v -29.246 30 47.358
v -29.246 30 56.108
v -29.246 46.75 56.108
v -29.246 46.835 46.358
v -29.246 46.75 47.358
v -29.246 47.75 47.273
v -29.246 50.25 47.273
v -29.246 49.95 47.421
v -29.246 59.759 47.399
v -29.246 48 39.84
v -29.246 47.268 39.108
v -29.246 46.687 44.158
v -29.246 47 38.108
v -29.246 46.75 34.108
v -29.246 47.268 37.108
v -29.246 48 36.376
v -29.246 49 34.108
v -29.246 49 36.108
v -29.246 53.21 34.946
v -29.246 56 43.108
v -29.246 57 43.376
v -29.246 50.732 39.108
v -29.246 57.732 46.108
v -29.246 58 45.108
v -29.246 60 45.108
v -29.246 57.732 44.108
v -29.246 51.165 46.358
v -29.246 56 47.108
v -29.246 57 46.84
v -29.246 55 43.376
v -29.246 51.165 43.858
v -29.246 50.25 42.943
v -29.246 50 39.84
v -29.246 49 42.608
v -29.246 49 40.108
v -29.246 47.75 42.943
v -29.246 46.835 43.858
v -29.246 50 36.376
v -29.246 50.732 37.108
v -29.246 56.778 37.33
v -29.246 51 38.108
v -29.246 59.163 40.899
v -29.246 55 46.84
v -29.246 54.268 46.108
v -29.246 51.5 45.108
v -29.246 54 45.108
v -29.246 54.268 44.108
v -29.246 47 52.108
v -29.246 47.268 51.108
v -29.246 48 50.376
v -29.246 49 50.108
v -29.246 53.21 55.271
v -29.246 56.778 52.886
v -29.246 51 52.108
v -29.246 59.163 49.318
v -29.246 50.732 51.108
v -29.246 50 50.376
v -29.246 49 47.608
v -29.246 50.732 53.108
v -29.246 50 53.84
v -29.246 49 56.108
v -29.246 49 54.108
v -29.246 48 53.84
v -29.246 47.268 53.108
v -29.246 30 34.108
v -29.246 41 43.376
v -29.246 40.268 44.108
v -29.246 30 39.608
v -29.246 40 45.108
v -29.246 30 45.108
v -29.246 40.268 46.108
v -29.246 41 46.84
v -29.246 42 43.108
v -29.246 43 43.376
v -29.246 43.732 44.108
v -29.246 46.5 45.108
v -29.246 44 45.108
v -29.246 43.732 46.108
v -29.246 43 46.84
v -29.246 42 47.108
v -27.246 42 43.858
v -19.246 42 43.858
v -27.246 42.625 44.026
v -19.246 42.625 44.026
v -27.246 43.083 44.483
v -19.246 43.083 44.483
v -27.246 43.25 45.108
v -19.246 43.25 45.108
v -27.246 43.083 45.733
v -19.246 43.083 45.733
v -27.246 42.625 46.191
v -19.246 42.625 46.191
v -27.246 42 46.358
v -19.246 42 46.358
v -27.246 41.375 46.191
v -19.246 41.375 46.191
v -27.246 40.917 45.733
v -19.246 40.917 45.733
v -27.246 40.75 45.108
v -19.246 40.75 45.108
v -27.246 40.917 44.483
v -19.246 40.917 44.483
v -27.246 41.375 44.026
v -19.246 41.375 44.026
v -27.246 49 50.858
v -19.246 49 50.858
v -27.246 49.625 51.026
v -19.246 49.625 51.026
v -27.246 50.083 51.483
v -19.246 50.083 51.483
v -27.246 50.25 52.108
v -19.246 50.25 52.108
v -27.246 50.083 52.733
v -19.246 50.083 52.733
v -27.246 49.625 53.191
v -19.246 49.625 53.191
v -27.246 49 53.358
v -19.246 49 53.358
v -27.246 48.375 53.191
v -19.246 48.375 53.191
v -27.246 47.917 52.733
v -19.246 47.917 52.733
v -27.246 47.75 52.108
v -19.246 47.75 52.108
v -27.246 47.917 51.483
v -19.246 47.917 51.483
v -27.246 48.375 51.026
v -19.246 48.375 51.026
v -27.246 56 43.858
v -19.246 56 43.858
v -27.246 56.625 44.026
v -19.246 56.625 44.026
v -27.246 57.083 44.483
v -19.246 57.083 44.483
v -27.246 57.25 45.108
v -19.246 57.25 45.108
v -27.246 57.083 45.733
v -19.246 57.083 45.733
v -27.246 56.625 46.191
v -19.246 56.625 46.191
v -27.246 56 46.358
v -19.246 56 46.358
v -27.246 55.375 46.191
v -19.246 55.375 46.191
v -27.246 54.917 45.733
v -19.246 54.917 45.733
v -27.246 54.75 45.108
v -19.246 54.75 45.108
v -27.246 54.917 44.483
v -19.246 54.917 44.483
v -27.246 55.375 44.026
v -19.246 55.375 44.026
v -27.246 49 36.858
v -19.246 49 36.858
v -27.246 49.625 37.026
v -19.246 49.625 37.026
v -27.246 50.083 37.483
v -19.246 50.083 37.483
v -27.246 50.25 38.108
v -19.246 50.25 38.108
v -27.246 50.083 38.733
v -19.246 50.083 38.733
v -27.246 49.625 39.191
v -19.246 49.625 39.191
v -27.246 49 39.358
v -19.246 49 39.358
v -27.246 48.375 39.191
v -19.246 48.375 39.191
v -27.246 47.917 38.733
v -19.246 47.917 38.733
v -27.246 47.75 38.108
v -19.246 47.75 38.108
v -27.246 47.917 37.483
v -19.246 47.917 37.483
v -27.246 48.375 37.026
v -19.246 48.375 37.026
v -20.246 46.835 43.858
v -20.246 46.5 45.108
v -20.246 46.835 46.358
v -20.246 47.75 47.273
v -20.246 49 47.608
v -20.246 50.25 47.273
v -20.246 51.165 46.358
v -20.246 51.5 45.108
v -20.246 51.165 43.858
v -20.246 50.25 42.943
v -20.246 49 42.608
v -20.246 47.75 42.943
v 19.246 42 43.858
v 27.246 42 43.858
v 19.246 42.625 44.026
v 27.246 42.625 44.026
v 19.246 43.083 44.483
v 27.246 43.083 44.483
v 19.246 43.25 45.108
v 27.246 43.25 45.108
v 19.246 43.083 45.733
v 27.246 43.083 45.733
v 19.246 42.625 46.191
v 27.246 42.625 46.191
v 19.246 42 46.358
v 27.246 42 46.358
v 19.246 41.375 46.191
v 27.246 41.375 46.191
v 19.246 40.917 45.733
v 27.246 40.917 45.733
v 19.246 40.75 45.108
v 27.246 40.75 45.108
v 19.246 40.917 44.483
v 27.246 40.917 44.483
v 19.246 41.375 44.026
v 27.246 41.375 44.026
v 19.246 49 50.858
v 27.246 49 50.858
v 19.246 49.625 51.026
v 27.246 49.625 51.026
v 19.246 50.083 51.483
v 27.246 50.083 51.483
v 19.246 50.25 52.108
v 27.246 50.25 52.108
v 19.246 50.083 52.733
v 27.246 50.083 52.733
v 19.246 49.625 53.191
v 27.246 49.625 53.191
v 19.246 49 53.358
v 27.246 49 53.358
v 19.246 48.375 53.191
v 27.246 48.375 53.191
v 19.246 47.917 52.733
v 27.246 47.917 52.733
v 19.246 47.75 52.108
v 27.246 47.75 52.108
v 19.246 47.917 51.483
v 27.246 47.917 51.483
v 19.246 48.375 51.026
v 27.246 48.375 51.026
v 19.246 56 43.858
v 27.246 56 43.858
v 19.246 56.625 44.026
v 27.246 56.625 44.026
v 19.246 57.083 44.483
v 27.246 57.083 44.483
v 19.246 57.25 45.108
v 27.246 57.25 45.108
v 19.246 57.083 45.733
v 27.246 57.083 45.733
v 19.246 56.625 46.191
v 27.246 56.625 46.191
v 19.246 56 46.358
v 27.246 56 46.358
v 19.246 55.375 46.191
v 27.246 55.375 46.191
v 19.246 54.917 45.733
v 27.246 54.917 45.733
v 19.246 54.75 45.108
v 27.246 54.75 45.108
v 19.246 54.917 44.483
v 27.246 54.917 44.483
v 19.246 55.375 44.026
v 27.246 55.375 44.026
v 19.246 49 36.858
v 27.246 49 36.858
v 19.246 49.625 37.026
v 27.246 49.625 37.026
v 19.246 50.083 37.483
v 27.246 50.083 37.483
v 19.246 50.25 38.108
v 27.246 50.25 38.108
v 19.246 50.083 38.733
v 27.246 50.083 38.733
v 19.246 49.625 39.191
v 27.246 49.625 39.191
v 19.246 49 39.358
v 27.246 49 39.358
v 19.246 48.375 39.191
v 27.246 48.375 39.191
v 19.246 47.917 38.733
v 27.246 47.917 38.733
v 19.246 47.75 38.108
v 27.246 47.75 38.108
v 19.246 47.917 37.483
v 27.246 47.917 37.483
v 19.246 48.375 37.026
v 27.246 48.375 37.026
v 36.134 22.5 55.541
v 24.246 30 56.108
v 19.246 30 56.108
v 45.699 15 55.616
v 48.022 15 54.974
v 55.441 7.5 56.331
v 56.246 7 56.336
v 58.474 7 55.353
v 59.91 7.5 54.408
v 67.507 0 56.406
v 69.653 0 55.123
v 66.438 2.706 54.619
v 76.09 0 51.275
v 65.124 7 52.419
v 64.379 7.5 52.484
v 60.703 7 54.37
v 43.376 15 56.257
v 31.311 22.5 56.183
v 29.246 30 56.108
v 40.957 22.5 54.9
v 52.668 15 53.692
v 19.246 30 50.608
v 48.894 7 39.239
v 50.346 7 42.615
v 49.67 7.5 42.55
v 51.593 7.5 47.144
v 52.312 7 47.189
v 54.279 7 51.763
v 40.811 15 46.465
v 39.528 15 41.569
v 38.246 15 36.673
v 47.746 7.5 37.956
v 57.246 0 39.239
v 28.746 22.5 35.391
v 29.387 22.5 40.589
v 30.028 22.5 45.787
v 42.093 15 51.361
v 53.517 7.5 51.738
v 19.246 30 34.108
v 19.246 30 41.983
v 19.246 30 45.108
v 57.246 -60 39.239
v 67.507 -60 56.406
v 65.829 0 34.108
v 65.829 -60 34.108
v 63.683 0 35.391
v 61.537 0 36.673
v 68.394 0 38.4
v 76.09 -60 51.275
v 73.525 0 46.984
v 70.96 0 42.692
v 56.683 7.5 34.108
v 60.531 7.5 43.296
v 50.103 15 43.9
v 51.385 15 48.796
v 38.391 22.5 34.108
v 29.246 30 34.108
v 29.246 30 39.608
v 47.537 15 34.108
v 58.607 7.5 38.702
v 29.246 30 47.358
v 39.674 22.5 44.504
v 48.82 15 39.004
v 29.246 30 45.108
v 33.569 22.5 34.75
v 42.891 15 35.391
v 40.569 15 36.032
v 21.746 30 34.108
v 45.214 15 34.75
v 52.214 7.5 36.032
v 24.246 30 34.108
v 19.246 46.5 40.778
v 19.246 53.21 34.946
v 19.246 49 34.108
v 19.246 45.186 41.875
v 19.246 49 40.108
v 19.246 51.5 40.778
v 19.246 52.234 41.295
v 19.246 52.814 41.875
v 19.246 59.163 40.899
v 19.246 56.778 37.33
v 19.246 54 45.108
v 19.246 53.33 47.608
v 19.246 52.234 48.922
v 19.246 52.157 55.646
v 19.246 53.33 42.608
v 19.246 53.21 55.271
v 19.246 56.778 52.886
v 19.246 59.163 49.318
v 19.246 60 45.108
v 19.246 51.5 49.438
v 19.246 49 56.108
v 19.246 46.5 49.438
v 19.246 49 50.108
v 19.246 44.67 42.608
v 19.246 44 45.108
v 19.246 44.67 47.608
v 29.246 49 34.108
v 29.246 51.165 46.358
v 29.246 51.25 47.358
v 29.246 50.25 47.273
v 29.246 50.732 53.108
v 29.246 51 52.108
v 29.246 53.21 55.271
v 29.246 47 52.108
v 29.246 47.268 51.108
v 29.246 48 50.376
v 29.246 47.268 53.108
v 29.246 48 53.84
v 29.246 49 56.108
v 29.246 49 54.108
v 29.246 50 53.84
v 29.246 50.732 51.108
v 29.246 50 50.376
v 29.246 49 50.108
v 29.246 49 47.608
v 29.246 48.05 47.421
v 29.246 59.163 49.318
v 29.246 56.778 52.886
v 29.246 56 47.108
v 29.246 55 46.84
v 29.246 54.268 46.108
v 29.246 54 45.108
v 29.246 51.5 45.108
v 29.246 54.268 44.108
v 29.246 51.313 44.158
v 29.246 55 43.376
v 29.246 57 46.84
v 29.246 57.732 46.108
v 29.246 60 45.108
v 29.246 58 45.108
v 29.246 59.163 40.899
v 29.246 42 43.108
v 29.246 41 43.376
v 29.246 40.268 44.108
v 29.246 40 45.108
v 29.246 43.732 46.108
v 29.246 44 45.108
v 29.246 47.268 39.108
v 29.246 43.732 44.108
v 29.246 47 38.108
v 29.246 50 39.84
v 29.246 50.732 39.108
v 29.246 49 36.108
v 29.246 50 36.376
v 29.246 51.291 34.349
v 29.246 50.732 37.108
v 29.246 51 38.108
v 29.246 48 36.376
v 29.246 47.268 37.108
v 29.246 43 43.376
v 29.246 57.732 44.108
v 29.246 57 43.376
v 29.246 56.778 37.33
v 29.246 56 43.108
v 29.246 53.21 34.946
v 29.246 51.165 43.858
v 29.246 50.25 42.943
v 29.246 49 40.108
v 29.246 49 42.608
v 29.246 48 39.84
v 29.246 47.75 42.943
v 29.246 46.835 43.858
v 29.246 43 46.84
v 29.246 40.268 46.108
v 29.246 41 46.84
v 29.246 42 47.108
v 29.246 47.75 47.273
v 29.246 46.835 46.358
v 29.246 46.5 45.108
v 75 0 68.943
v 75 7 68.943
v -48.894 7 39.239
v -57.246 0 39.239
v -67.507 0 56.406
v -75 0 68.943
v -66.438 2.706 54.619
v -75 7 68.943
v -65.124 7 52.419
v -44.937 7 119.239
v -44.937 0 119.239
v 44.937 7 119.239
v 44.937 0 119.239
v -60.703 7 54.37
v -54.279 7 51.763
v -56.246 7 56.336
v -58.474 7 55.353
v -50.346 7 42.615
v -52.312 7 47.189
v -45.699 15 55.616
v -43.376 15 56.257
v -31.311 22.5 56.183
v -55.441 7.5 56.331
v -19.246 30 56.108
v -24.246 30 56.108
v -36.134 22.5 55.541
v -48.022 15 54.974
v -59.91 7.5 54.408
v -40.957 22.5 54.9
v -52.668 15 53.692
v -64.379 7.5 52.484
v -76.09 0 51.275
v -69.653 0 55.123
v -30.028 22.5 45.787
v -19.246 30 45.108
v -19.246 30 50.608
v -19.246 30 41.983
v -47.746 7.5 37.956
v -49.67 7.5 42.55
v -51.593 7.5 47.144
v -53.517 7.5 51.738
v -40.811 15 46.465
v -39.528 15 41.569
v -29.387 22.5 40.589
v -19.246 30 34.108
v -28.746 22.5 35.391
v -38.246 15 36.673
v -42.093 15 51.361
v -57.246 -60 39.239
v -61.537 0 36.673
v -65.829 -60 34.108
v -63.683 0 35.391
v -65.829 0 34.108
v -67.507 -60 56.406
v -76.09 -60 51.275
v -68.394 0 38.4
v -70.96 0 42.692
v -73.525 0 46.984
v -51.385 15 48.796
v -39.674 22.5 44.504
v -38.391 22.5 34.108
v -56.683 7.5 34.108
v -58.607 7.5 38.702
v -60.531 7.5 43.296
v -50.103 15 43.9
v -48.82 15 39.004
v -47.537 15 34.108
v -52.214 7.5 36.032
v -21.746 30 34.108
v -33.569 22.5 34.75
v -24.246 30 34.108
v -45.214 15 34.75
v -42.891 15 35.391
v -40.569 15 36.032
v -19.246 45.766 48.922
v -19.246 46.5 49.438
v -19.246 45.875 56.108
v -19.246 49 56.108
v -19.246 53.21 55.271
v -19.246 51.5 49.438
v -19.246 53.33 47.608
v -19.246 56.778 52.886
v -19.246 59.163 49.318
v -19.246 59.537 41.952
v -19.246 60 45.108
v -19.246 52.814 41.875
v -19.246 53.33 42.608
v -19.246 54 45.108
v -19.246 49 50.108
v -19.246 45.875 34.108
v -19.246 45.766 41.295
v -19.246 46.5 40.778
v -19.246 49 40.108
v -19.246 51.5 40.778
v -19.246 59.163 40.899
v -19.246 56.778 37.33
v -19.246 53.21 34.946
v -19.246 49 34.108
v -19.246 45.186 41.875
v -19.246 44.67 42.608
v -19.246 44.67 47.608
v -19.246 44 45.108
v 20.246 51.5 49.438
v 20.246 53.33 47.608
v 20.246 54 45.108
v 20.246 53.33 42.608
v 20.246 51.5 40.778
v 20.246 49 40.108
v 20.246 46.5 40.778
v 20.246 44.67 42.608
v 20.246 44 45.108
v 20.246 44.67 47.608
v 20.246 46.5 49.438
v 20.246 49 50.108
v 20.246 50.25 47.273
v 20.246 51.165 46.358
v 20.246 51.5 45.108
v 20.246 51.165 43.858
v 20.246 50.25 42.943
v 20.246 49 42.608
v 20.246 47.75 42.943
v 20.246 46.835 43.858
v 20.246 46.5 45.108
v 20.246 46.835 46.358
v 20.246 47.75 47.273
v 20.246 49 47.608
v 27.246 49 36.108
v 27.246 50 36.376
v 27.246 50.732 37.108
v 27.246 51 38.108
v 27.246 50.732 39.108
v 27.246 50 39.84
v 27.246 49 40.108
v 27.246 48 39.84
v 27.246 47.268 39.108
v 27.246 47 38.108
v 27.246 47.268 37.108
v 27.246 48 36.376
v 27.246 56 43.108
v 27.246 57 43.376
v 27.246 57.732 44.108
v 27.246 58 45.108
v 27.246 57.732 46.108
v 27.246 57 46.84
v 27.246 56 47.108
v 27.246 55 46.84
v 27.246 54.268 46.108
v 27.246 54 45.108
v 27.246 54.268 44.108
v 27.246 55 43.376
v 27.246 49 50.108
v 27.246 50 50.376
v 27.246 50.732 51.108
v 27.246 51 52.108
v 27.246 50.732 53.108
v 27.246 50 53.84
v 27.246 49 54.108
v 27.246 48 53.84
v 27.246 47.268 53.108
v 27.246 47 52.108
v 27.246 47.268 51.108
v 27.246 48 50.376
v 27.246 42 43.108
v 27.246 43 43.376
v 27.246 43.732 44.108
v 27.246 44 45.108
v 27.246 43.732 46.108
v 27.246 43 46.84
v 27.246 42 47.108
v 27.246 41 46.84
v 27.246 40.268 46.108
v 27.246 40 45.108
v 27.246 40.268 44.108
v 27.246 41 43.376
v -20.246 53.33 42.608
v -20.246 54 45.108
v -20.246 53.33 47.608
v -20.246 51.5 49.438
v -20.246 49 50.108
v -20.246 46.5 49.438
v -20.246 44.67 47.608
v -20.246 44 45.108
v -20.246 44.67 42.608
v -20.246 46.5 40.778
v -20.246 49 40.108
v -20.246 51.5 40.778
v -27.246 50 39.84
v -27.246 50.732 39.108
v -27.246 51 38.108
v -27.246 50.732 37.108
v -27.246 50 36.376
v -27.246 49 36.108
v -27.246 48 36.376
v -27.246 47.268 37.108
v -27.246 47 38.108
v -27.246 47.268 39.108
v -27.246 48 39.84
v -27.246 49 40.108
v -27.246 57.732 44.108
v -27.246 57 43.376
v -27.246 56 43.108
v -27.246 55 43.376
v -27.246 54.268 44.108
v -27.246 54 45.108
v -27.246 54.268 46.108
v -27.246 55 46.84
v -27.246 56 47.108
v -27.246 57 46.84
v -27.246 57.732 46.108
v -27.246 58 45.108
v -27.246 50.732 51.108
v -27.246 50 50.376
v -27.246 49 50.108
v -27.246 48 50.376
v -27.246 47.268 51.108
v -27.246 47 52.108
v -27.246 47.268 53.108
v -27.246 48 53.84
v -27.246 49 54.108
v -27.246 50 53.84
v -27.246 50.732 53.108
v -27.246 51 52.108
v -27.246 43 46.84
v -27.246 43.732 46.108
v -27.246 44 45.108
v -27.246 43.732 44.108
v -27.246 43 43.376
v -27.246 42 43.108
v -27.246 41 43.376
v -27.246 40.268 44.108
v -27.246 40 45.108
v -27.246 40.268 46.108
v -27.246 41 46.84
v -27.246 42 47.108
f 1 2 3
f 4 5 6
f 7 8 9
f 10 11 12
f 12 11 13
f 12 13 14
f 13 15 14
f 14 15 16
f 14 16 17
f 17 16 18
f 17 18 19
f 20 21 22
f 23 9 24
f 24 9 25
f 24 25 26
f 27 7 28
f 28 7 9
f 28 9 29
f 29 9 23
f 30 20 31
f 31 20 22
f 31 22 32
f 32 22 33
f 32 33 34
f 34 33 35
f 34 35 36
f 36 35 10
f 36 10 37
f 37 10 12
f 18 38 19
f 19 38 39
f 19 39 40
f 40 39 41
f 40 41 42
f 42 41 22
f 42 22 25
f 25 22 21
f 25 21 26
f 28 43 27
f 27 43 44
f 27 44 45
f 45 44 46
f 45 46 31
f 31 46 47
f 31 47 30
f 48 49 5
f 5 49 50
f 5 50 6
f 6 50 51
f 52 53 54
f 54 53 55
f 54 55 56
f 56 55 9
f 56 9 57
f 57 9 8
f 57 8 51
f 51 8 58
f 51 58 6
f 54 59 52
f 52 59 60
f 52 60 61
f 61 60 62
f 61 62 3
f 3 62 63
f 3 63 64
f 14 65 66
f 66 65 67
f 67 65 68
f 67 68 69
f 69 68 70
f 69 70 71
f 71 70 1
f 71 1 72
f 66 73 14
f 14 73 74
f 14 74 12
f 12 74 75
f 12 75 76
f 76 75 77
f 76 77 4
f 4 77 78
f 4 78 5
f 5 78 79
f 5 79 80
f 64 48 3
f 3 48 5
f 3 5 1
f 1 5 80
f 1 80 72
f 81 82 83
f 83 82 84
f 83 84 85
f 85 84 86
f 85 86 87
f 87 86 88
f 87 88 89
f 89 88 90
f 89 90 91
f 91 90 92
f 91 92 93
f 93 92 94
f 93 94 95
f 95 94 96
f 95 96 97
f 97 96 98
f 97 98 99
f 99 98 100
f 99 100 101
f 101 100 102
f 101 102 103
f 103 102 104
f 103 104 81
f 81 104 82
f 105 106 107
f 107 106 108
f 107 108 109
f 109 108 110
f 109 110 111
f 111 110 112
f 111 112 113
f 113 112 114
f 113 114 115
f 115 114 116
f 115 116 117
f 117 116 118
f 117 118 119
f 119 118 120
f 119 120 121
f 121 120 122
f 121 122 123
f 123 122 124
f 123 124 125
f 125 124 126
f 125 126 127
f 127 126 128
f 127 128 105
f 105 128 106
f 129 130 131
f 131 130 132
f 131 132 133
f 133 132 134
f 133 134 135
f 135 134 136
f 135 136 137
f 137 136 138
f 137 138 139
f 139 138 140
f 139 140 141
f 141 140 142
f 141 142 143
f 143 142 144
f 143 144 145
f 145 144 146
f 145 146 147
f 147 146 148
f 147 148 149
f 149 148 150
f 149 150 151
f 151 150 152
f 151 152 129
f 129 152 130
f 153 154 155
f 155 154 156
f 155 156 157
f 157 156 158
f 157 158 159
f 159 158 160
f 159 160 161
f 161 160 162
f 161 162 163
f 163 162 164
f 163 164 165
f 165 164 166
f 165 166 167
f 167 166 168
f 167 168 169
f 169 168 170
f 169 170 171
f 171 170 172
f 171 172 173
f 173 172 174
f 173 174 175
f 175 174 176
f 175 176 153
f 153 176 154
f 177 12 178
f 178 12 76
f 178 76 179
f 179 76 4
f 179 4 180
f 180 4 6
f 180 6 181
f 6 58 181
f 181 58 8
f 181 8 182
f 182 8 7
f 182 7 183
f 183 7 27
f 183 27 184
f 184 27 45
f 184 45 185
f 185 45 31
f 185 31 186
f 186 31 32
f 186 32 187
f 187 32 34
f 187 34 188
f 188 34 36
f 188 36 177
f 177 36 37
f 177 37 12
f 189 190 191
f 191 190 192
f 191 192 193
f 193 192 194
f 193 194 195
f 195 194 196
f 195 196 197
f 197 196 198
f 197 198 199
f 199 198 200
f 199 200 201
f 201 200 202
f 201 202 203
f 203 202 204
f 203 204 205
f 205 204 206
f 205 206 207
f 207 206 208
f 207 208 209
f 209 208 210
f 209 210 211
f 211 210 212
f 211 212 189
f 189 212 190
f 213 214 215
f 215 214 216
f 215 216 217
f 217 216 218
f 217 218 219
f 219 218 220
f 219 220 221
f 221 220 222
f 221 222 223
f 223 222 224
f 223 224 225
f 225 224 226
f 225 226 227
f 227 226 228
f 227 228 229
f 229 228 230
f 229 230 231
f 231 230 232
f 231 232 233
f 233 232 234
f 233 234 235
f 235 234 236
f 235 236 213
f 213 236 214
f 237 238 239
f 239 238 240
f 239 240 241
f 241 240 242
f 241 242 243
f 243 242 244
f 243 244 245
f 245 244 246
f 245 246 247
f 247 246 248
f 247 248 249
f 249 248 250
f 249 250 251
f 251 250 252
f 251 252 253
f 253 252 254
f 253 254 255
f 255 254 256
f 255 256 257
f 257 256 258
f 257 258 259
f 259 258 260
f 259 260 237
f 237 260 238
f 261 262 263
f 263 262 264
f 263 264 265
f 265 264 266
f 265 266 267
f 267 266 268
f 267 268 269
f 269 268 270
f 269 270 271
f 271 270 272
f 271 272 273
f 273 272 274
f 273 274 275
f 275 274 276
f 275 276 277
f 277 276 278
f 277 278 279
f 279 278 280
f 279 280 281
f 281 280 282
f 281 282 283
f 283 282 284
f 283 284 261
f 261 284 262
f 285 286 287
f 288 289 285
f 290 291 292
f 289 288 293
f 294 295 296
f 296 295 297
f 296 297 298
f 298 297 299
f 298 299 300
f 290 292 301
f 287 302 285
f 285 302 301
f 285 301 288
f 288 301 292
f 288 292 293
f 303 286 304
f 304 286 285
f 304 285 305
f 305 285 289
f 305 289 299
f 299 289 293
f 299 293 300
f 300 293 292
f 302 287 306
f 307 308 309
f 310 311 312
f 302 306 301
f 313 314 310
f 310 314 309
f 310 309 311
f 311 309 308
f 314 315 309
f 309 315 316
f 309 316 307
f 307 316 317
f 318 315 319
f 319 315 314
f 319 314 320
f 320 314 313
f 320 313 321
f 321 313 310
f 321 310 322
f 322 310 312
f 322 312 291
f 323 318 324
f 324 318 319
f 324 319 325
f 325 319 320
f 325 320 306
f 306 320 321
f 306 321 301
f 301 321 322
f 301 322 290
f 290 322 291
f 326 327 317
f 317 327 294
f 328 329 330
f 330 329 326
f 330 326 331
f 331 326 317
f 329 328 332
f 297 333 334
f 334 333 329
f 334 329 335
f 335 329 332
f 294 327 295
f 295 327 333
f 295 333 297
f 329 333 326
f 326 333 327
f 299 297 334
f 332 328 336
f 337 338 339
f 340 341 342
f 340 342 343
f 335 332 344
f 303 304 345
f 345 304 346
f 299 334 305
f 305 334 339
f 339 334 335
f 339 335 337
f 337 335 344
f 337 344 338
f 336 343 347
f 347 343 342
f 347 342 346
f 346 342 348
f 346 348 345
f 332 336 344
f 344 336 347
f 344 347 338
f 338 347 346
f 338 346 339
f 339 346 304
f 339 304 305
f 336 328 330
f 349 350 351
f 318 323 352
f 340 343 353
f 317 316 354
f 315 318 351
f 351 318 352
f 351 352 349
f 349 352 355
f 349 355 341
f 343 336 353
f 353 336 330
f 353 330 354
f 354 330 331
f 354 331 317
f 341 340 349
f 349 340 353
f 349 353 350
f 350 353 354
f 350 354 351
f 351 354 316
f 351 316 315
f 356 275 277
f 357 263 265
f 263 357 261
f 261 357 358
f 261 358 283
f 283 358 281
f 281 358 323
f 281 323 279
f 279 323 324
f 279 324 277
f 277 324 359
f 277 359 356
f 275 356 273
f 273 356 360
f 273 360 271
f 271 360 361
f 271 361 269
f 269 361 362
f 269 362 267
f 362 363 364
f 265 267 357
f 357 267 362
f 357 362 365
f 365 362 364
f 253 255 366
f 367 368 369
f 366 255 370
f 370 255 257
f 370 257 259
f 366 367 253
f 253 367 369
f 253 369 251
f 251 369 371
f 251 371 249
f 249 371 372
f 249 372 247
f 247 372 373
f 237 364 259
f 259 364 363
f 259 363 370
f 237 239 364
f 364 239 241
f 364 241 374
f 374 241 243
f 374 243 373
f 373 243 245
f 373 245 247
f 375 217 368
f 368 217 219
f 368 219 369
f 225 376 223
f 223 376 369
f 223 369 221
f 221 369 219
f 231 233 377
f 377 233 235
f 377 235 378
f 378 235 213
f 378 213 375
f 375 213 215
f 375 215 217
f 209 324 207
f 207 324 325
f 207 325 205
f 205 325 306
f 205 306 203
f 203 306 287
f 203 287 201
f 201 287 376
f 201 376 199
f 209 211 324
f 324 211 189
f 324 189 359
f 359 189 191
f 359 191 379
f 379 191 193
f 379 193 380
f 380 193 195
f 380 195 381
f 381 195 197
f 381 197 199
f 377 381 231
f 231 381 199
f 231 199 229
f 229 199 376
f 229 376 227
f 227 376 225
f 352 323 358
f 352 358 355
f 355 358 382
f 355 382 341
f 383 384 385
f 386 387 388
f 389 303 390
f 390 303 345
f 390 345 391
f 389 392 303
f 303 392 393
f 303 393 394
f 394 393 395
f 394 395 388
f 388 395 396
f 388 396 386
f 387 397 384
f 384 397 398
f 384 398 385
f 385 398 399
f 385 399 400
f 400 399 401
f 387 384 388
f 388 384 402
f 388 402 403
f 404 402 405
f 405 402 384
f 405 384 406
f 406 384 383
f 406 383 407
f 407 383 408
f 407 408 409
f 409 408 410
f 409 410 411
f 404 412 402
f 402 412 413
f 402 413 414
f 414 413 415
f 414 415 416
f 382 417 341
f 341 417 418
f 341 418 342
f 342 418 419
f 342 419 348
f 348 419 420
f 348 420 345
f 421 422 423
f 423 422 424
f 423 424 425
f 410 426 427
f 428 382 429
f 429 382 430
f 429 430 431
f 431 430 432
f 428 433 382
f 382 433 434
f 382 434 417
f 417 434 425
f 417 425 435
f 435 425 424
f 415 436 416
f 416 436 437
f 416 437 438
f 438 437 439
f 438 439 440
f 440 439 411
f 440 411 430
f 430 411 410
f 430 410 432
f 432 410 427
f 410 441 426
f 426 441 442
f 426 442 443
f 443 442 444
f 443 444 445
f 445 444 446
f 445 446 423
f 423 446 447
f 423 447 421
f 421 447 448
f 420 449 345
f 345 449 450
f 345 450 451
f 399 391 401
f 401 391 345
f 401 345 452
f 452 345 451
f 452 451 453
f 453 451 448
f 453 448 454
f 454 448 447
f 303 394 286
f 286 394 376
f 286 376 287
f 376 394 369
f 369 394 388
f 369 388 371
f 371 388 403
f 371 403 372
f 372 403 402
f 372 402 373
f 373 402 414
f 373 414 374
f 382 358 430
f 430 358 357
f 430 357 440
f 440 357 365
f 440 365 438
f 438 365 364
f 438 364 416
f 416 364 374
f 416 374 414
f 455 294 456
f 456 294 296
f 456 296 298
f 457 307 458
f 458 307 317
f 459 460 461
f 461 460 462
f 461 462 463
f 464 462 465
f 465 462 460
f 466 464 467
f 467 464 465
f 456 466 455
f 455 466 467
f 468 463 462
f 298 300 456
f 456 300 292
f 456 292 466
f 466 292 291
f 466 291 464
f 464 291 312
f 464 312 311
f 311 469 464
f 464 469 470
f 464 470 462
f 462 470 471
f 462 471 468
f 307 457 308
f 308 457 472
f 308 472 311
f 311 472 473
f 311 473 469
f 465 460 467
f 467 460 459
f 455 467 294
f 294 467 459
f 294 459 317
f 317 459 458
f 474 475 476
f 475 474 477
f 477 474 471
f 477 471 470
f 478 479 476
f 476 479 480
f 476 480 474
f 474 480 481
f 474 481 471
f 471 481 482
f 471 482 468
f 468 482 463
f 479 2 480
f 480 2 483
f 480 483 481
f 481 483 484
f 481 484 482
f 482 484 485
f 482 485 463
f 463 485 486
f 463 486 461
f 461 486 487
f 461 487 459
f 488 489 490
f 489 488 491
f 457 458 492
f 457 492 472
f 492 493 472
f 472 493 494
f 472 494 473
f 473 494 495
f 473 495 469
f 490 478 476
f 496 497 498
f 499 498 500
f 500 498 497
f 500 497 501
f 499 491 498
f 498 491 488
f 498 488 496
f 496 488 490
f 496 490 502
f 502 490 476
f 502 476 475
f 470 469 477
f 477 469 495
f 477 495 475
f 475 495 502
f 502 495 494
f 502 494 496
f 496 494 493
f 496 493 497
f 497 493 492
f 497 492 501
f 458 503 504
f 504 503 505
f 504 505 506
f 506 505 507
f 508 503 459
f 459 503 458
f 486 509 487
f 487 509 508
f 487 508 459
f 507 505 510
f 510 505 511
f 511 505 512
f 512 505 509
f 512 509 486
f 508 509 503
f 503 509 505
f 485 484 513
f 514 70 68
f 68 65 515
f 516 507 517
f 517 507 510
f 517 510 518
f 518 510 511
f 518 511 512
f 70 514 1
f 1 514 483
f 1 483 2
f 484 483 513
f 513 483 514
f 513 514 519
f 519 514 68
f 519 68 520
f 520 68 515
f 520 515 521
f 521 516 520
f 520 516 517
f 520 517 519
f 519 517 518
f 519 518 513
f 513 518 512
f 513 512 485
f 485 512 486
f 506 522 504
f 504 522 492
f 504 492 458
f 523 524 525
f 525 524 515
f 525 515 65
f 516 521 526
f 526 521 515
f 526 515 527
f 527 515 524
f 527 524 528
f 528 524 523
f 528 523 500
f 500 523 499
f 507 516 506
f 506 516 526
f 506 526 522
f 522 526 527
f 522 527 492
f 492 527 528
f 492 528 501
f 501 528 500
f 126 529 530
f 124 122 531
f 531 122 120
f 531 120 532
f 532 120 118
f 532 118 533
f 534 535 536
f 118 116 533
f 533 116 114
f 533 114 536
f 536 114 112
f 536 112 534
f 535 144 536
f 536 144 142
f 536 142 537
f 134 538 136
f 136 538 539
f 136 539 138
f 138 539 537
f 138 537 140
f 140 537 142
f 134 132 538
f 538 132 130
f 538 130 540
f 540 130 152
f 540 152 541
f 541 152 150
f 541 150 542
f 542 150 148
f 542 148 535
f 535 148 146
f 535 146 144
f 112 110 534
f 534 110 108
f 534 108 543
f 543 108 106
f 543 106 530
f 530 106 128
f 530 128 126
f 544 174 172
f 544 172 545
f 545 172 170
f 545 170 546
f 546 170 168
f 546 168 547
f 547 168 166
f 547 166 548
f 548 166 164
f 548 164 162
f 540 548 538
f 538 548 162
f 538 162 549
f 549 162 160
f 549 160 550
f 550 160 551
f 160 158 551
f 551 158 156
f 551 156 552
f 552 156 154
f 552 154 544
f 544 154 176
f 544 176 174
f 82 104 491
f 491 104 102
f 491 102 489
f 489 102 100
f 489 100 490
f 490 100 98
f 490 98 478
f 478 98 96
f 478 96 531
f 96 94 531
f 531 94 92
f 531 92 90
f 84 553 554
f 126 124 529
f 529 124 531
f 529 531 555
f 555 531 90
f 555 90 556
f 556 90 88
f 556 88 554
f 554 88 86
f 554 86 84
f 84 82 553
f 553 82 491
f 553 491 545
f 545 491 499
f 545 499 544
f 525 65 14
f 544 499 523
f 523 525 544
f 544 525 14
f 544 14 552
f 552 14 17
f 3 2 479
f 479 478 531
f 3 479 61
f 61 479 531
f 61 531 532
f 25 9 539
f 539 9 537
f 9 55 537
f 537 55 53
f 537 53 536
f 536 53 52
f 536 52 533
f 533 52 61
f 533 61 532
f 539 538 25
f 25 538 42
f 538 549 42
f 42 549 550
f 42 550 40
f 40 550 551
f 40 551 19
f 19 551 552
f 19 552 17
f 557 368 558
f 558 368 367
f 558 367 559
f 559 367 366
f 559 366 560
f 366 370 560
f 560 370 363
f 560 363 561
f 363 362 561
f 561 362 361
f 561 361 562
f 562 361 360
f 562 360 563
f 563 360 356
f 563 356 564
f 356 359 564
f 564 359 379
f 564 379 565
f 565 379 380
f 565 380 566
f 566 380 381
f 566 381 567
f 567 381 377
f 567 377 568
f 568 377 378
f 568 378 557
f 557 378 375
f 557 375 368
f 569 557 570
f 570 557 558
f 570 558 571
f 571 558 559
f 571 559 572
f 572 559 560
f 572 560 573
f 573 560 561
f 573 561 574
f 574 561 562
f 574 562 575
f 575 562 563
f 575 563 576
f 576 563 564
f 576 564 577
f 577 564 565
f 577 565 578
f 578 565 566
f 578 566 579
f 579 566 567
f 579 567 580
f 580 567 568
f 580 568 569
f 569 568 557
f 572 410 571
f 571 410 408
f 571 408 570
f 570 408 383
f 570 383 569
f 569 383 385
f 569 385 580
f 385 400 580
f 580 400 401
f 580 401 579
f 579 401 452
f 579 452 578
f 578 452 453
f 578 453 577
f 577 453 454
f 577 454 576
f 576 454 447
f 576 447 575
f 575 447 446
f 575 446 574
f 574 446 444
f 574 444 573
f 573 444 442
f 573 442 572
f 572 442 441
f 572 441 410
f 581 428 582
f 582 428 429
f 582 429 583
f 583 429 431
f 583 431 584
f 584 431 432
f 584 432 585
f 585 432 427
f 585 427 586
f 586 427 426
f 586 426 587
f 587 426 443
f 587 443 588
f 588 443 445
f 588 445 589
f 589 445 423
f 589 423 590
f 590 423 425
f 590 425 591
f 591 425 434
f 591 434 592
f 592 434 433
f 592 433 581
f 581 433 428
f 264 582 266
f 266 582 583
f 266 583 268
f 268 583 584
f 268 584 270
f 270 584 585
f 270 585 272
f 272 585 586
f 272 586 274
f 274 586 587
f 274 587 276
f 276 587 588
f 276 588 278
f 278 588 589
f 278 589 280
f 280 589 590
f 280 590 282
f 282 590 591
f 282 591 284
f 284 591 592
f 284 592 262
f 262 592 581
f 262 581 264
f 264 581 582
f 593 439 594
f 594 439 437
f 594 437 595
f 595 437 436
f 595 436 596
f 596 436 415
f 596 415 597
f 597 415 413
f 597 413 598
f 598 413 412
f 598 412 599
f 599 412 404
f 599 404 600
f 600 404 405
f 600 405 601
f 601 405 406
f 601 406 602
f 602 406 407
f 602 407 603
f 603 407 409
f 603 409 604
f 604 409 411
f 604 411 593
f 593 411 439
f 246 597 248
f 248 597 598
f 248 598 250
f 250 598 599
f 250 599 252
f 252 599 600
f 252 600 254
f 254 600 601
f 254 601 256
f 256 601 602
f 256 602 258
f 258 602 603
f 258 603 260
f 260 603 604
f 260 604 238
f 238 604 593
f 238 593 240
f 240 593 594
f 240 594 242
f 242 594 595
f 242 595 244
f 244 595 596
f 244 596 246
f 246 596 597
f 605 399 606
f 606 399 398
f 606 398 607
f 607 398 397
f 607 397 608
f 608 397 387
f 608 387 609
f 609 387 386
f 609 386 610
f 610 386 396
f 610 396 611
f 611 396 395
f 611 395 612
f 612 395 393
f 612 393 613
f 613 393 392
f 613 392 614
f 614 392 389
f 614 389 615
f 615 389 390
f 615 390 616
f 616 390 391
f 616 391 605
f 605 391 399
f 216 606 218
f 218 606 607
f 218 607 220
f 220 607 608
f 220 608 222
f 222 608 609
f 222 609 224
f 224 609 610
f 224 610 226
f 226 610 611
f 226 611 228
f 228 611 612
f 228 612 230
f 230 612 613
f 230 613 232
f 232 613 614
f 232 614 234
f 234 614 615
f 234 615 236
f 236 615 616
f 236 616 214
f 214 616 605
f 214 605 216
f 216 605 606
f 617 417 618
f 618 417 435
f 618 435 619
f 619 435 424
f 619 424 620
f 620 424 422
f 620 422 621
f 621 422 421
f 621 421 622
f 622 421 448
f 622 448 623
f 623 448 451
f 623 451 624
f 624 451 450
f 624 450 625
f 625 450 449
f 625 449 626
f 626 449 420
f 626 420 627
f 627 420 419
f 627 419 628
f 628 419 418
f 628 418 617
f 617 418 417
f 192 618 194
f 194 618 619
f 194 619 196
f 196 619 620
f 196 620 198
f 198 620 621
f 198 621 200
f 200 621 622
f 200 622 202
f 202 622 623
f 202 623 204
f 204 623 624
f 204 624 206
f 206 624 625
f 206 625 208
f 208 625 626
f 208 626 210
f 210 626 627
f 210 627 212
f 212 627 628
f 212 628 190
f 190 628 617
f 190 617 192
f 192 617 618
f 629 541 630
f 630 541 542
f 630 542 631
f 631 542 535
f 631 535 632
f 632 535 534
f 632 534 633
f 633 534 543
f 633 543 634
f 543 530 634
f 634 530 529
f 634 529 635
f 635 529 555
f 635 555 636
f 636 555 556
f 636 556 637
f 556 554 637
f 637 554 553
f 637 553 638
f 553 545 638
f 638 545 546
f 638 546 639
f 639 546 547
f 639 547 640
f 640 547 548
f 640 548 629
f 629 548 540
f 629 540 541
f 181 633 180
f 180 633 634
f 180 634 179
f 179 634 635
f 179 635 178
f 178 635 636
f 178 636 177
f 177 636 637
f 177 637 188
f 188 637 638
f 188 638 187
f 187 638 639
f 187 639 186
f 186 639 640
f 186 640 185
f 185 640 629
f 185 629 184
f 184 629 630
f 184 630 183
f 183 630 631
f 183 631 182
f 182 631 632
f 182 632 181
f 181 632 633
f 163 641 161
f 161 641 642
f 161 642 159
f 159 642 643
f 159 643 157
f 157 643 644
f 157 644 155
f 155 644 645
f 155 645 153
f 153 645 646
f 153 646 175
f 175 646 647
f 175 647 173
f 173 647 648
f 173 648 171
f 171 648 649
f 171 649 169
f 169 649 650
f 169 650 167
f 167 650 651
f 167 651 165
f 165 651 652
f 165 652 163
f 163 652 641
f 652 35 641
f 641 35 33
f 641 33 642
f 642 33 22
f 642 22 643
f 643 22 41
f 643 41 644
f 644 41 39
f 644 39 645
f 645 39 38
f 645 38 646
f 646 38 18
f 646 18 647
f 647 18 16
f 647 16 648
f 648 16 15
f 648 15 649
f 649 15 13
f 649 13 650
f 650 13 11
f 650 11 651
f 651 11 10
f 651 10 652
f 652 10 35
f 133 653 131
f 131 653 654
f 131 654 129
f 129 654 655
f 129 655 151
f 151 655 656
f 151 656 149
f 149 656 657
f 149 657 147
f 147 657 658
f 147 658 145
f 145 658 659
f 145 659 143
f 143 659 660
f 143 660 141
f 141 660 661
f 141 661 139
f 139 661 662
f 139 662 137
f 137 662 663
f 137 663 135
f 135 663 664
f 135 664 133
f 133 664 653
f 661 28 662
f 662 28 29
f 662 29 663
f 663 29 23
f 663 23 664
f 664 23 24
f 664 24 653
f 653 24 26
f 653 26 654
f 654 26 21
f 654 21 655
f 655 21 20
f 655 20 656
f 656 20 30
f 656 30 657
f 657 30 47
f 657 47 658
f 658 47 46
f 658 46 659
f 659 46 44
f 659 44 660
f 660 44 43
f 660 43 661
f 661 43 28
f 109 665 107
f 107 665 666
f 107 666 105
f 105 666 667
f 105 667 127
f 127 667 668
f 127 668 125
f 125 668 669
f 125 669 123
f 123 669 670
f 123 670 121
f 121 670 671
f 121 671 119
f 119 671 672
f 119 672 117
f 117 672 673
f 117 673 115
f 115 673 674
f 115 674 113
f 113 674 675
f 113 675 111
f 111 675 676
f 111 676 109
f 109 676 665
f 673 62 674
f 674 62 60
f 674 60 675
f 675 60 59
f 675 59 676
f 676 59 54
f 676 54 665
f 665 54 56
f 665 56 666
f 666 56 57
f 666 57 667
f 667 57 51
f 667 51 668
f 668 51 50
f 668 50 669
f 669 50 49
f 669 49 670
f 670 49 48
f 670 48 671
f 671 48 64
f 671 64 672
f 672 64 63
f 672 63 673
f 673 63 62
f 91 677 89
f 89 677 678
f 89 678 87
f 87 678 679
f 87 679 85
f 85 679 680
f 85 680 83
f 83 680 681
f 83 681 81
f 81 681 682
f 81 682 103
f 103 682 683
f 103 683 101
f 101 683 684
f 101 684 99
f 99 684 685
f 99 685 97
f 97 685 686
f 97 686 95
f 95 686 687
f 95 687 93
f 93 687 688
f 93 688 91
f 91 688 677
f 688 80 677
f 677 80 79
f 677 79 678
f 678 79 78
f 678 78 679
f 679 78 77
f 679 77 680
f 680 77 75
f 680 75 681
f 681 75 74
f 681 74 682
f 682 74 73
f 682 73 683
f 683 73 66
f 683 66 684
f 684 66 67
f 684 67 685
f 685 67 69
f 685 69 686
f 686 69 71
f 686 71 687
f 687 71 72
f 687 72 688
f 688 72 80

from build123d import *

# Parameters (mm, degrees)
BOSS_EXTRUDE1_DEPTH     = 60
BOSS_EXTRUDE1_2_DEPTH   = 60
BOSS_EXTRUDE2_START     = 30
SKETCH5_W               = 10
SKETCH5_H               = 22
BOSS_EXTRUDE2_DEPTH     = 30
FILLET1_R               = 11
FILLET2_R               = 11
BOSS_EXTRUDE5_DEPTH     = 7
SKETCH12_R              = 5
SKETCH12_R_2            = 2.5
CUT_EXTRUDE1_DEPTH      = 1
SKETCH12_3_R            = 2.5
CUT_EXTRUDE2_DEPTH      = 3
CUT_EXTRUDE8_DEPTH      = 165.032898367
CUT_EXTRUDE8_DEPTH_BACK = 165.032898367
SKETCH16_R              = 2.5
SKETCH17_R              = 1.25
CUT_EXTRUDE9_DEPTH      = 171.03972178
SKETCH17_3_R            = 2
SKETCH17_3_R_2          = 1.25
CUT_EXTRUDE10_DEPTH     = 2


with BuildPart() as part:
    # Sketch4 → Boss-Extrude1 (new body)
    with BuildSketch(Plane(origin=(0, 0, 0), x_dir=(1, 0, 0), z_dir=(0, 1, 0))):
        Polygon((67.506640691, -56.405895144), (76.090203327, -51.275353996), (65.82912103, -34.108228724), (57.245558394, -39.238769873), align=None)
    extrude(amount=-BOSS_EXTRUDE1_DEPTH)



with BuildPart() as body_2:
    # Sketch4 → Boss-Extrude1 2 (new body)
    with BuildSketch(Plane(origin=(0, 0, 0), x_dir=(1, 0, 0), z_dir=(0, 1, 0))):
        Polygon((-57.245558394, -39.238769873), (-67.506640691, -56.405895144), (-76.090203327, -51.275353996), (-65.82912103, -34.108228724), align=None)
    extrude(amount=-BOSS_EXTRUDE1_2_DEPTH)



with BuildPart() as body_3:
    # Sketch5 → Boss-Extrude2 (new body)
    with BuildSketch(Plane(origin=(0, 0, 0), x_dir=(1, 0, 0), z_dir=(0, 1, 0)).offset(BOSS_EXTRUDE2_START)):
        with Locations((-24.245558394, -45.108228724)):
            Rectangle(SKETCH5_W, SKETCH5_H)
    extrude(amount=BOSS_EXTRUDE2_DEPTH)


with BuildPart() as body_2_1:
    add(body_2.part)

    add(body_3.part)  # loft1 joins it to this body
    # loft from a face of the part (loft1)
    loft([body_2_1.faces().sort_by_distance((-66.667880861, 0, 45.257061934))[0], body_2_1.faces().sort_by_distance((-24.245558394, 30, 45.108228724))[0]])


with BuildPart() as body_3_2:
    # Mirror1: mirrored copy
    add(body_2_1.part.mirror(Plane(origin=(0, 0, 0), x_dir=(0, 0, 1), z_dir=(1, 0, 0))))

    # Fillet2
    fillet2_edges = [body_3_2.edges().sort_by_distance(p)[0] for p in [
        (24.245558394, 60, 34.108228724),
        (24.245558394, 60, 56.108228724),
    ]]
    fillet(fillet2_edges, radius=FILLET2_R - 0.0001)  # a hair under: the kernel refuses the full size


with BuildPart() as body_2_2:
    add(body_2_1.part)

    # Fillet1
    fillet1_edges = [body_2_2.edges().sort_by_distance(p)[0] for p in [
        (-24.245558394, 60, 34.108228724),
        (-24.245558394, 60, 56.108228724),
    ]]
    fillet(fillet1_edges, radius=FILLET1_R - 0.0001)  # a hair under: the kernel refuses the full size


with BuildPart() as part_1:
    add(part.part)

    add(body_2_2.part)  # Boss-Extrude5 merges body 2

    add(body_3_2.part)  # Boss-Extrude5 merges body 3 2
    # Sketch11 → Boss-Extrude5 (add)
    with BuildSketch(Plane(origin=(0, 0, 0), x_dir=(1, 0, 0), z_dir=(0, 1, 0))):
        Polygon((75, -68.942529607), (44.93708309, -119.238769873), (-44.93708309, -119.238769873), (-75, -68.942529607), (-57.245558394, -39.238769873), (57.245558394, -39.238769873), align=None)
    extrude(amount=BOSS_EXTRUDE5_DEPTH)

    # Sketch12 → Cut-Extrude1 (cut)
    with BuildSketch(Plane.ZY.offset(-19.245558394)):
        with Locations((45.108228724, 49)):
            Circle(SKETCH12_R)
        with Locations((45.108228724, 49)):
            Circle(SKETCH12_R_2, mode=Mode.SUBTRACT)
    cut_extrude1 = extrude(amount=-CUT_EXTRUDE1_DEPTH, mode=Mode.SUBTRACT)

    # Sketch12<3> → Cut-Extrude2 (cut)
    with BuildSketch(Plane.ZY.offset(-19.245558394)):
        with Locations((45.108228724, 49)):
            Circle(SKETCH12_3_R)
    cut_extrude2 = extrude(amount=-CUT_EXTRUDE2_DEPTH, mode=Mode.SUBTRACT)

    # Sketch16 → Cut-Extrude8 (cut, two sides: drawn at the far end of the back side and taken through both)
    with BuildSketch(Plane.ZY.offset(-19.245558394).offset(-CUT_EXTRUDE8_DEPTH_BACK)):
        with Locations((45.108228724, 49)):
            Circle(SKETCH16_R)
    extrude(amount=CUT_EXTRUDE8_DEPTH + CUT_EXTRUDE8_DEPTH_BACK, mode=Mode.SUBTRACT)

    # Sketch17 → Cut-Extrude9 (cut, through all)
    with BuildSketch(Plane(origin=(29.245558394, 0, 0), x_dir=(0, 0, -1), z_dir=(1, 0, 0))):
        with Locations((-38.108228724, 49)):
            Circle(SKETCH17_R)
        with BuildLine():
            ThreePointArc((-45.108228724, 57.25), (-46.358228724, 56), (-45.108228724, 54.75))
            Line((-45.108228724, 54.75), (-45.108228724, 57.25))
        make_face()
        with BuildLine():
            Line((-45.108228724, 57.25), (-45.108228724, 54.75))
            ThreePointArc((-45.108228724, 54.75), (-44.224345248, 55.116116524), (-43.858228724, 56))
            ThreePointArc((-43.858228724, 56), (-44.224345248, 56.883883476), (-45.108228724, 57.25))
        make_face()
        with Locations((-52.108228724, 49)):
            Circle(SKETCH17_R)
        with Locations((-45.108228724, 42)):
            Circle(SKETCH17_R)
    extrude(amount=-CUT_EXTRUDE9_DEPTH, mode=Mode.SUBTRACT)

    # Sketch17<3> → Cut-Extrude10 (cut)
    # profile 1 of 4: a face of its own
    with BuildSketch(Plane(origin=(29.245558394, 0, 0), x_dir=(0, 0, -1), z_dir=(1, 0, 0))):
        with Locations((-45.108228724, 56)):
            Circle(SKETCH17_3_R)
        with Locations((-45.108228724, 56)):
            Circle(SKETCH17_3_R_2, mode=Mode.SUBTRACT)
    # profile 2 of 4: a face of its own
    with BuildSketch(Plane(origin=(29.245558394, 0, 0), x_dir=(0, 0, -1), z_dir=(1, 0, 0))):
        with Locations((-38.108228724, 49)):
            Circle(SKETCH17_3_R)
        with Locations((-38.108228724, 49)):
            Circle(SKETCH17_3_R_2, mode=Mode.SUBTRACT)
    # profile 3 of 4: a face of its own
    with BuildSketch(Plane(origin=(29.245558394, 0, 0), x_dir=(0, 0, -1), z_dir=(1, 0, 0))):
        with Locations((-45.108228724, 42)):
            Circle(SKETCH17_3_R)
        with Locations((-45.108228724, 42)):
            Circle(SKETCH17_3_R_2, mode=Mode.SUBTRACT)
    # profile 4 of 4: a face of its own
    with BuildSketch(Plane(origin=(29.245558394, 0, 0), x_dir=(0, 0, -1), z_dir=(1, 0, 0))):
        with Locations((-52.108228724, 49)):
            Circle(SKETCH17_3_R)
        with Locations((-52.108228724, 49)):
            Circle(SKETCH17_3_R_2, mode=Mode.SUBTRACT)
    cut_extrude10 = extrude(amount=-CUT_EXTRUDE10_DEPTH, mode=Mode.SUBTRACT)

    # Mirror3: Cut-Extrude1, Cut-Extrude2, Cut-Extrude10 across plane
    add(cut_extrude1.mirror(Plane.ZY), mode=Mode.SUBTRACT)
    add(cut_extrude2.mirror(Plane.ZY), mode=Mode.SUBTRACT)
    add(cut_extrude10.mirror(Plane.ZY), mode=Mode.SUBTRACT)


solid = part_1.part
